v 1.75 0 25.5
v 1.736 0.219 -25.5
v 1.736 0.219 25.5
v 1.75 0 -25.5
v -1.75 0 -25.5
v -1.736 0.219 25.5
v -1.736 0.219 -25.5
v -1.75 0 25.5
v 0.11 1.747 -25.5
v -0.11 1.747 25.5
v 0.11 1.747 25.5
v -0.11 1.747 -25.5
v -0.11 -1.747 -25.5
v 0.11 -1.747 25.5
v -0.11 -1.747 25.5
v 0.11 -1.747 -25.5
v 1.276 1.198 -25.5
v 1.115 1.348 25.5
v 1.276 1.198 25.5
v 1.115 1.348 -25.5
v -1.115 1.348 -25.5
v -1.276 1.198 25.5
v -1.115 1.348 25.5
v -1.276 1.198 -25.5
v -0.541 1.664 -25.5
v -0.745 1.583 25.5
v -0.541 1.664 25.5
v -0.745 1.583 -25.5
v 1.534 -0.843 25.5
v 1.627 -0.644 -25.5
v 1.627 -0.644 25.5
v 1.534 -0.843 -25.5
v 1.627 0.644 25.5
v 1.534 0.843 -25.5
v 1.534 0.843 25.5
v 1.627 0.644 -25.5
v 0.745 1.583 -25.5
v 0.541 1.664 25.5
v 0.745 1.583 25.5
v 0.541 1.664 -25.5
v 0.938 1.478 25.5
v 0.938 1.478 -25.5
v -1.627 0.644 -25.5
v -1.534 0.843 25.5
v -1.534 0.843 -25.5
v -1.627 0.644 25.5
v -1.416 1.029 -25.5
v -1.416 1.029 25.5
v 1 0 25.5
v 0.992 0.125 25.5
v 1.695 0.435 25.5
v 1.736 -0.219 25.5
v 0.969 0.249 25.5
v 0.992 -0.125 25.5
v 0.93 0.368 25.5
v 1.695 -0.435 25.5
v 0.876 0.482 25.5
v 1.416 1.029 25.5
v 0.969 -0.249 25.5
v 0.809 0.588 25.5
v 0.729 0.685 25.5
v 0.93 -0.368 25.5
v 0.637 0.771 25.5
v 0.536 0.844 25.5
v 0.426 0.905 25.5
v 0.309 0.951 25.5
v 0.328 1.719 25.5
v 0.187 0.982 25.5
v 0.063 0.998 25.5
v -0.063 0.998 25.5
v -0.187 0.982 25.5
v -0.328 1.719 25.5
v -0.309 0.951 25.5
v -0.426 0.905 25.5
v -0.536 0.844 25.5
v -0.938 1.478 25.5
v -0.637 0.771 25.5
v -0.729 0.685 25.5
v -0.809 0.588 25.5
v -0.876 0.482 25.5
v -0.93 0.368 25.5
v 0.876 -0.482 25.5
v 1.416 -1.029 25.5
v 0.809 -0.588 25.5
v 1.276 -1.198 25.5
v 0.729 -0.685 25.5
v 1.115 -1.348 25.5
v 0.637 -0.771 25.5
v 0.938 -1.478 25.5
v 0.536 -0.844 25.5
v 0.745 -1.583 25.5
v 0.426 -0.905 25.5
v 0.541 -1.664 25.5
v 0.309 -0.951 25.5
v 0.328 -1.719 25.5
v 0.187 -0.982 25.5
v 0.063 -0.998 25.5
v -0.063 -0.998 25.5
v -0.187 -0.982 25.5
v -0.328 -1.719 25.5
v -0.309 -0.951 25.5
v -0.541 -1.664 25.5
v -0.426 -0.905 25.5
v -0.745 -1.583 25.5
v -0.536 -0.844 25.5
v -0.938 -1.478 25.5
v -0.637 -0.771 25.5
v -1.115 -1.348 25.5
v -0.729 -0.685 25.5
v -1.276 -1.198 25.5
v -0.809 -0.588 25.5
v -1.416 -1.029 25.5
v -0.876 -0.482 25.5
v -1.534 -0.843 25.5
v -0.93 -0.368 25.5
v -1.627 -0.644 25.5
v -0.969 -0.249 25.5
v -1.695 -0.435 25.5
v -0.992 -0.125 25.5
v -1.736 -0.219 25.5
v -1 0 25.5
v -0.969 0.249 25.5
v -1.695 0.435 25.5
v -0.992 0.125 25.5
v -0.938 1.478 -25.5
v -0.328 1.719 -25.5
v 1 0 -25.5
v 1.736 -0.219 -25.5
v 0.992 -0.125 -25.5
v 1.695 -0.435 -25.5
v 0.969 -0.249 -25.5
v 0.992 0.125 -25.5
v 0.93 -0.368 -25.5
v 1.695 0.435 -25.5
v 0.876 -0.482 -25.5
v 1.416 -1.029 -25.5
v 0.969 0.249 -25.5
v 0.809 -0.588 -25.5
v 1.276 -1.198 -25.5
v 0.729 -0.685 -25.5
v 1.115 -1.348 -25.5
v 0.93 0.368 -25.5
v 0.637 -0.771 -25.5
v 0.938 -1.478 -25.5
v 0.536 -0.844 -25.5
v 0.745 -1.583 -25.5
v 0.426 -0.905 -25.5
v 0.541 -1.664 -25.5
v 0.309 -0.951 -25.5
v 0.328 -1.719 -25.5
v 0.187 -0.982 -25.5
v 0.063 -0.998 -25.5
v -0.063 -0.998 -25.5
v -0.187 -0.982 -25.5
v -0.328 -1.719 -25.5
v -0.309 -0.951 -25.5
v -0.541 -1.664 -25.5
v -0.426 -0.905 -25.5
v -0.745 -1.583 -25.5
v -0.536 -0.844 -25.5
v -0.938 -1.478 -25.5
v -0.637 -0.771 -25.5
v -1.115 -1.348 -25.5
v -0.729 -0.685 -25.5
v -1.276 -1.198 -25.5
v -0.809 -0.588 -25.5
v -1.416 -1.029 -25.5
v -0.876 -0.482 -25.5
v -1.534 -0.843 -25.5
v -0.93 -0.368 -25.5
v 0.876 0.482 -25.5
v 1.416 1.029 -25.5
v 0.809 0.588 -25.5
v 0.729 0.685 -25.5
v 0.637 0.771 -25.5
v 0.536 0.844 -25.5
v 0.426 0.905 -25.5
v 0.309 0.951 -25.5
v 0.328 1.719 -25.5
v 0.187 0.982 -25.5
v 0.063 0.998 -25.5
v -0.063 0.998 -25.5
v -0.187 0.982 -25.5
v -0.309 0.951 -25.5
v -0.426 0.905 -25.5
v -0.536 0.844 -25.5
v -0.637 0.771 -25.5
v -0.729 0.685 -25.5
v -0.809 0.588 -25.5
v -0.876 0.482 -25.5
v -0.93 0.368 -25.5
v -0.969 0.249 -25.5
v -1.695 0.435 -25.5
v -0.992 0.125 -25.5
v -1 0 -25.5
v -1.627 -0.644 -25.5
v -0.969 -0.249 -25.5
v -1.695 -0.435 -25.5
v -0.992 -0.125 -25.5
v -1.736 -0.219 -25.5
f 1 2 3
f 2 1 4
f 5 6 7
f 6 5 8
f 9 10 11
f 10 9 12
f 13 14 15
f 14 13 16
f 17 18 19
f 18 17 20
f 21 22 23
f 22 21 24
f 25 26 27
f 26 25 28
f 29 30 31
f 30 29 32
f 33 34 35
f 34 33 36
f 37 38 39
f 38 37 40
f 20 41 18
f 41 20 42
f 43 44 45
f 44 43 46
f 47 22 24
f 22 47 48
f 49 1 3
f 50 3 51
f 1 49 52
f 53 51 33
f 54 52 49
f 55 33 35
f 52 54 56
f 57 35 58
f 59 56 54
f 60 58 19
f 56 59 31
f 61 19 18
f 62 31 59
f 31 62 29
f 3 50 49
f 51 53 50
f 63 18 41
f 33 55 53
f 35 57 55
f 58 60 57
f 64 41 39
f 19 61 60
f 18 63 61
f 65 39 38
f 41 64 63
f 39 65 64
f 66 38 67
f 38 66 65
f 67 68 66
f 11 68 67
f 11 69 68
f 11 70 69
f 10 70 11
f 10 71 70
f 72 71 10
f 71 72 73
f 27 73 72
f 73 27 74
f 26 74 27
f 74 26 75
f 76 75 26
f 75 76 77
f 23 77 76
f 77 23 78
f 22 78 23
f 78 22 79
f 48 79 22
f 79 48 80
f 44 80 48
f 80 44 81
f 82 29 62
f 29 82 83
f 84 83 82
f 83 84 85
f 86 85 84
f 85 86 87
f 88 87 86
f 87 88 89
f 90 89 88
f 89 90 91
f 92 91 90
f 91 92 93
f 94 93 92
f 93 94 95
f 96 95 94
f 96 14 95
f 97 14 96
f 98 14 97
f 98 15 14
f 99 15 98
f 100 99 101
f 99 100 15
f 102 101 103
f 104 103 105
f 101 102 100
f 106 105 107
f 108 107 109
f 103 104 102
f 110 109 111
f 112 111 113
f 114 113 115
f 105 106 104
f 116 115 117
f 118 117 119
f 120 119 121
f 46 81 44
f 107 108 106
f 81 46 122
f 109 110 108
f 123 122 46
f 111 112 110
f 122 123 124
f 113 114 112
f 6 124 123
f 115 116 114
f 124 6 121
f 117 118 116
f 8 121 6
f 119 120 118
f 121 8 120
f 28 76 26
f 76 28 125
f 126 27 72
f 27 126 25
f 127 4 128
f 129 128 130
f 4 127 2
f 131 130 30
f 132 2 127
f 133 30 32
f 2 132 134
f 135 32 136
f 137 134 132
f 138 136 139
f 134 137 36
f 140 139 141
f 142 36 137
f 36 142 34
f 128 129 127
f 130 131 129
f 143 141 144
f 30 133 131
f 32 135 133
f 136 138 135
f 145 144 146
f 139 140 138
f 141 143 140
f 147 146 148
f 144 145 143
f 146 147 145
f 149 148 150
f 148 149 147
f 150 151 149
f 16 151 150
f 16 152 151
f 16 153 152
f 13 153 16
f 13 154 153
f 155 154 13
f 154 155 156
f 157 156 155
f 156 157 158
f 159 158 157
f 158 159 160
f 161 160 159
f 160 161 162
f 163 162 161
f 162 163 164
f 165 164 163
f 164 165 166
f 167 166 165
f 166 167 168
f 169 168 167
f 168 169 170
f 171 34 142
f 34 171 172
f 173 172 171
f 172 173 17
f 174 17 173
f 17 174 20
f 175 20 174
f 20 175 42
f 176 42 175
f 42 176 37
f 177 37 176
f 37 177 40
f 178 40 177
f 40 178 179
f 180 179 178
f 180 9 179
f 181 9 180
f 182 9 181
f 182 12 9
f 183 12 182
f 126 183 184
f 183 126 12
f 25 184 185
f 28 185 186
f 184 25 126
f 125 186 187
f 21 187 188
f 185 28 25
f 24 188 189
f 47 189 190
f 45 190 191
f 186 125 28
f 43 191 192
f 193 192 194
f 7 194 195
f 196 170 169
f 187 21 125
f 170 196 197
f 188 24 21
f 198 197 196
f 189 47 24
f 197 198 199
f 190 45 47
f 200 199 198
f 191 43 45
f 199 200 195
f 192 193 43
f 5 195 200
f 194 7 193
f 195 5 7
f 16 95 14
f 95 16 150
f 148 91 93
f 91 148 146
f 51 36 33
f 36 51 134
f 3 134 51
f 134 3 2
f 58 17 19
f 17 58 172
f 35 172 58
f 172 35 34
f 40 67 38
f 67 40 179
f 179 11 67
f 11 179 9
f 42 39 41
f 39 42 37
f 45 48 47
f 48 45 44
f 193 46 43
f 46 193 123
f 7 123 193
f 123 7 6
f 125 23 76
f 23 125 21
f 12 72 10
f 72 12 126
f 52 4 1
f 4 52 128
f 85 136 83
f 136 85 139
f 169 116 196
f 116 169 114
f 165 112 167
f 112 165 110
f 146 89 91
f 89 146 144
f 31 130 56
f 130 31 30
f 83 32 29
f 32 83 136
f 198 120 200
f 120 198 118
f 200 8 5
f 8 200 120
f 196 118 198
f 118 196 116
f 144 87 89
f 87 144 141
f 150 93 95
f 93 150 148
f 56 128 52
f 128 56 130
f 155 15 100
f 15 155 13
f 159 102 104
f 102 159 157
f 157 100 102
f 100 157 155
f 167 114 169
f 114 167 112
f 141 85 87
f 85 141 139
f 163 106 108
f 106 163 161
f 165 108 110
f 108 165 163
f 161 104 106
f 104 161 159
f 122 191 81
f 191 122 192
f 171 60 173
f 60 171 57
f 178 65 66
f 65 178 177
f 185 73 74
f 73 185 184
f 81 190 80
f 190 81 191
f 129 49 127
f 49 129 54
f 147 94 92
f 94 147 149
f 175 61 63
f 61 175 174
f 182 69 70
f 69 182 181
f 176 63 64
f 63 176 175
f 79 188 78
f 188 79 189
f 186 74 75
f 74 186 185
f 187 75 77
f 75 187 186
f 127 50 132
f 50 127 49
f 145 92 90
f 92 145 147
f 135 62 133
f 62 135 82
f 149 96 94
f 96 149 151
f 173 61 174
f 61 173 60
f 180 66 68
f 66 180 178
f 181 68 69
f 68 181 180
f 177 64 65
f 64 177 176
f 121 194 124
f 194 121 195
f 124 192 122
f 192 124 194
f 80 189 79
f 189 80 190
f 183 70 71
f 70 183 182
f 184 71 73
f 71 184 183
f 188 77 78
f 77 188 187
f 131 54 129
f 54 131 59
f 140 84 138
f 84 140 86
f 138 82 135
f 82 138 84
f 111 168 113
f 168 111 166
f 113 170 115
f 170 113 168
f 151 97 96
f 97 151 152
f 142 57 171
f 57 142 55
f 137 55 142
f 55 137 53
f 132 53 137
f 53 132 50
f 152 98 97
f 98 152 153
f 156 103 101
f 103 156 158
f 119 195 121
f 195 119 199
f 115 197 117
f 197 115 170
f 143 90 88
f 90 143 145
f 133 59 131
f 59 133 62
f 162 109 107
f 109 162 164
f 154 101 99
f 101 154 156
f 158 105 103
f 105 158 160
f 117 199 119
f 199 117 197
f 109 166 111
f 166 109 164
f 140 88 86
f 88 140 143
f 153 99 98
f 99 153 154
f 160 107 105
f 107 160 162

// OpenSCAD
$fn = 50;


difference() {
	union() {
		translate(v = [0, 0, -25.5000000000]) {
			cylinder(h = 51, r = 1.7500000000);
		}
	}
	union() {
		translate(v = [0, 0, -100.0000000000]) {
			cylinder(h = 200, r = 1.0000000000);
		}
	}
}
